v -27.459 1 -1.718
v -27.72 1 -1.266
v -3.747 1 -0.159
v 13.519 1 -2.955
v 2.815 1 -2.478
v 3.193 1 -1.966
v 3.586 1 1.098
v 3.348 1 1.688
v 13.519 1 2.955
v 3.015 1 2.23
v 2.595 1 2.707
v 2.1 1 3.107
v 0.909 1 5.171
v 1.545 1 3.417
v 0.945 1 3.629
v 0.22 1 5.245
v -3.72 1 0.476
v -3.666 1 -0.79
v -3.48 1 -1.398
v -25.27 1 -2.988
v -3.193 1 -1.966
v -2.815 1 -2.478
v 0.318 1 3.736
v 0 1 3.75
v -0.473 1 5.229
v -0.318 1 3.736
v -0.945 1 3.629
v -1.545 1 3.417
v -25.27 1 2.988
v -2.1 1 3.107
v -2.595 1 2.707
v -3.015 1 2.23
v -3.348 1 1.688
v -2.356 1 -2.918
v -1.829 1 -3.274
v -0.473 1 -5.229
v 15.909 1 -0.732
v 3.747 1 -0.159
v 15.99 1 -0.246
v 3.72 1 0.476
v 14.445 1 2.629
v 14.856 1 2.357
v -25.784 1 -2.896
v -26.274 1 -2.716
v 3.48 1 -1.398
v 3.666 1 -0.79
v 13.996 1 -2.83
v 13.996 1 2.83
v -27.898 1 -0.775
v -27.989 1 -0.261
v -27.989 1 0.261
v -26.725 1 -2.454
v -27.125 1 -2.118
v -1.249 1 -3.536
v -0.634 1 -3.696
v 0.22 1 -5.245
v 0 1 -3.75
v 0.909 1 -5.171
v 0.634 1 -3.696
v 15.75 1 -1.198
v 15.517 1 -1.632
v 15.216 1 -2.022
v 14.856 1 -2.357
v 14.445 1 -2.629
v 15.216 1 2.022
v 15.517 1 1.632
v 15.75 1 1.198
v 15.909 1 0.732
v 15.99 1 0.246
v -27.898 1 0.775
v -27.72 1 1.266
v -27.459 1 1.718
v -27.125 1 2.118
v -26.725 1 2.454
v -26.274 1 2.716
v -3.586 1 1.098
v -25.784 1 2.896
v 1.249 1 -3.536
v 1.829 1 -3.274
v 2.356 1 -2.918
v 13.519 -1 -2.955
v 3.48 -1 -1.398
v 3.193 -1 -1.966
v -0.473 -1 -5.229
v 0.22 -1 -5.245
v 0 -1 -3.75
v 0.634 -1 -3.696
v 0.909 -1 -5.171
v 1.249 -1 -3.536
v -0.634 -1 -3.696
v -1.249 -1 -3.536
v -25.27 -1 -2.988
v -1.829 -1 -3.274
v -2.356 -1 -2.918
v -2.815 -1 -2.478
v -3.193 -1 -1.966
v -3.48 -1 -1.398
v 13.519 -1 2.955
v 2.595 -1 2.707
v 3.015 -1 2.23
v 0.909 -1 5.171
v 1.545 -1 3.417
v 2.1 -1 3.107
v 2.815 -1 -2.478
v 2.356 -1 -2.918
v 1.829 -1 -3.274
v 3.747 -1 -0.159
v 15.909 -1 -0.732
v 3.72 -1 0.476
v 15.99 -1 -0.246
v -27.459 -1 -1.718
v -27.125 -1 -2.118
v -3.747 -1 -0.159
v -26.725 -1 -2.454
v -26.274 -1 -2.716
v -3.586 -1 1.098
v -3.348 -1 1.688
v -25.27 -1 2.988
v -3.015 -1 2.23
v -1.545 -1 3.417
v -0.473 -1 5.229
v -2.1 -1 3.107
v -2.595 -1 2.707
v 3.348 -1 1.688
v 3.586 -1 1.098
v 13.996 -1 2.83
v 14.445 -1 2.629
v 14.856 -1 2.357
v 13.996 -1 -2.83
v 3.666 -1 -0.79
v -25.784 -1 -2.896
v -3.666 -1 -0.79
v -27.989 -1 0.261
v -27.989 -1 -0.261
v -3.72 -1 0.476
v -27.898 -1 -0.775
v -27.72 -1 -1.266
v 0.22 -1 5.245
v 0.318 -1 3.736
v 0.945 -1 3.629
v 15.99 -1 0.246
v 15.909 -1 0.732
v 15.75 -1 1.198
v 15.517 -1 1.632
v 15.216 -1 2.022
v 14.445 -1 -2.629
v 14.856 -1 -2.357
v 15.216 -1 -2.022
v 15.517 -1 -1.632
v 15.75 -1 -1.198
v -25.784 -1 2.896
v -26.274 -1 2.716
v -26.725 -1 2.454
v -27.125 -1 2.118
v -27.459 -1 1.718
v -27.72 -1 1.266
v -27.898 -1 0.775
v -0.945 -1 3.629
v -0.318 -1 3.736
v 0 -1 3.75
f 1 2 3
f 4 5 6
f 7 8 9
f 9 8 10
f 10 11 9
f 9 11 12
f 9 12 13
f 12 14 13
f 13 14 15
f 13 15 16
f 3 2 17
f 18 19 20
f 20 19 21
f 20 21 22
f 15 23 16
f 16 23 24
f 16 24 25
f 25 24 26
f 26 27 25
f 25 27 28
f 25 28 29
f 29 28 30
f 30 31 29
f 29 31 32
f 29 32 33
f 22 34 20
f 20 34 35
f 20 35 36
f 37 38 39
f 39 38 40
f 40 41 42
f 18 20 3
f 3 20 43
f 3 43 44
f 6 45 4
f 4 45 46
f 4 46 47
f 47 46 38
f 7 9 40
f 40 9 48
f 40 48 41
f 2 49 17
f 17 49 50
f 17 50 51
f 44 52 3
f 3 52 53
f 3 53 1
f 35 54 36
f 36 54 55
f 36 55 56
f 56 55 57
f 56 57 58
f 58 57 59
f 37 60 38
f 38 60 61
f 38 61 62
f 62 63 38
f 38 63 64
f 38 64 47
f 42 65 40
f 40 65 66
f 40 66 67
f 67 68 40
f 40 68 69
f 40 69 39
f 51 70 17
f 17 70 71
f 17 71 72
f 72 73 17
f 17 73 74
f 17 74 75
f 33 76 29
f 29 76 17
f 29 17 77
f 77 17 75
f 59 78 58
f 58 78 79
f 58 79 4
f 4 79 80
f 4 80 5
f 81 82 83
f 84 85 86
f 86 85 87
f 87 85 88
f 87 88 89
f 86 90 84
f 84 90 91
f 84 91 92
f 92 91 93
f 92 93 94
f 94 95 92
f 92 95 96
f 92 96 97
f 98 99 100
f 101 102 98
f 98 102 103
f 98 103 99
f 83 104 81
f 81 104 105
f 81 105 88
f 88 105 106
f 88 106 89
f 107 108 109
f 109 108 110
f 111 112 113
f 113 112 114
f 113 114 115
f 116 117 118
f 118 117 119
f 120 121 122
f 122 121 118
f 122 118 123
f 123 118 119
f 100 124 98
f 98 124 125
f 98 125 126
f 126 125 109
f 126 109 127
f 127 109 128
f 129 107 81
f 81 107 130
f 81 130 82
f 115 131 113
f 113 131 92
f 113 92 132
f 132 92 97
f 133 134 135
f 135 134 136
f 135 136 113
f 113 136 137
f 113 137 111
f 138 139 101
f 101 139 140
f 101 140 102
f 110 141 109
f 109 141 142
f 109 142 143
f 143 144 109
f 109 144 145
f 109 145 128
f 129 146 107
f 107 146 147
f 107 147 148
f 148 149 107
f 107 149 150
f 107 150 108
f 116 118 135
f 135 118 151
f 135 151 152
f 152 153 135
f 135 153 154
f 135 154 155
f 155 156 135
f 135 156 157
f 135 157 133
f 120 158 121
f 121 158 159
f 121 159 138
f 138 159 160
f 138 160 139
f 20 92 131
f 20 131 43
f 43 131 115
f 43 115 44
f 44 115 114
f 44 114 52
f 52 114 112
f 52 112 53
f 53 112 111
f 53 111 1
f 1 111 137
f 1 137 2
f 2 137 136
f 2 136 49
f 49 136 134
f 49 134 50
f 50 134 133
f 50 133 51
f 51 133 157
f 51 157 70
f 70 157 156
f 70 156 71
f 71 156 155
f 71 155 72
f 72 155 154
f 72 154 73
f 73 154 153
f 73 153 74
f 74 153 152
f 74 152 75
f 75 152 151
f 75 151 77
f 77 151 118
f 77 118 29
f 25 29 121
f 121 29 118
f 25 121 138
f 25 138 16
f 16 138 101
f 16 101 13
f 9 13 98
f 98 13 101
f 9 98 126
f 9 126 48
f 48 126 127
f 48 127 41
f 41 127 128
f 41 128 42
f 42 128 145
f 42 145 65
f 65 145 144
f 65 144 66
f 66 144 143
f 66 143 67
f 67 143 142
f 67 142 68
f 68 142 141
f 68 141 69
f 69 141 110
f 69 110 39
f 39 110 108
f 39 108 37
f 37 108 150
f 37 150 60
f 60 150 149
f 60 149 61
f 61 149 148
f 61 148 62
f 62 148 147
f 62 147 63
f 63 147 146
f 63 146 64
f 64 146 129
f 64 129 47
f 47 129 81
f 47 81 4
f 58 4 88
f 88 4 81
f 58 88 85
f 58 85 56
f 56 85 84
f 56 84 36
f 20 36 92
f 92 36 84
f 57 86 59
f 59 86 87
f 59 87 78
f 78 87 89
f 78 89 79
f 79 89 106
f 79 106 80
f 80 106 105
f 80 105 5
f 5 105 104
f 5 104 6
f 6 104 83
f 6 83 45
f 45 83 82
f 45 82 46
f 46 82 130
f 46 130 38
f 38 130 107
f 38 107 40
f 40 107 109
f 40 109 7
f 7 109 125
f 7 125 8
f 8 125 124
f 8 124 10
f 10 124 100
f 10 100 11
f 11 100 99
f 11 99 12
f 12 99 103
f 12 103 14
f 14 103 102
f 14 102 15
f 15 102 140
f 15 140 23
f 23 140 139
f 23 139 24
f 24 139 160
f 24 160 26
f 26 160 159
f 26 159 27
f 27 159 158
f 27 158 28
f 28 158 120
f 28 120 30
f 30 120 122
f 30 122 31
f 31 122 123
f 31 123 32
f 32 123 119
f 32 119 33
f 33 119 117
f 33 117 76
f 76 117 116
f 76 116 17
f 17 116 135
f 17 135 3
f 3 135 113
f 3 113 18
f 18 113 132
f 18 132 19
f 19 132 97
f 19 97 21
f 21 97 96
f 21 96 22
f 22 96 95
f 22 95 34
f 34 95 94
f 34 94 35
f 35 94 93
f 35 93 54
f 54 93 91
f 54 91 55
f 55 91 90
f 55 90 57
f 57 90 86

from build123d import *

# Parameters (mm, degrees)
SKETCH1_R           = 3.75
BOSS_EXTRUDE1_DEPTH = 1


with BuildPart() as part:
    # Sketch1 → Boss-Extrude1 (new body, symmetric)
    with BuildSketch(Plane(origin=(0, 0, 0), x_dir=(1, 0, 0), z_dir=(0, 1, 0))):
        with BuildLine():
            Line((-25.27, -2.987825296), (-0.4725, -5.228694268))
            ThreePointArc((-0.4725, -5.228694268), (0.219991794, -5.245388795), (0.908653846, -5.170768626))
            Line((0.908653846, -5.170768626), (13.519230769, -2.954724929))
            ThreePointArc((13.519230769, -2.954724929), (16, 0), (13.519230769, 2.954724929))
            Line((13.519230769, 2.954724929), (0.908653846, 5.170768626))
            ThreePointArc((0.908653846, 5.170768626), (0.219991794, 5.245388795), (-0.4725, 5.228694268))
            Line((-0.4725, 5.228694268), (-25.27, 2.987825296))
            ThreePointArc((-25.27, 2.987825296), (-28, 0), (-25.27, -2.987825296))
        make_face()
        Circle(SKETCH1_R, mode=Mode.SUBTRACT)
    extrude(amount=BOSS_EXTRUDE1_DEPTH, both=True)


solid = part.part
